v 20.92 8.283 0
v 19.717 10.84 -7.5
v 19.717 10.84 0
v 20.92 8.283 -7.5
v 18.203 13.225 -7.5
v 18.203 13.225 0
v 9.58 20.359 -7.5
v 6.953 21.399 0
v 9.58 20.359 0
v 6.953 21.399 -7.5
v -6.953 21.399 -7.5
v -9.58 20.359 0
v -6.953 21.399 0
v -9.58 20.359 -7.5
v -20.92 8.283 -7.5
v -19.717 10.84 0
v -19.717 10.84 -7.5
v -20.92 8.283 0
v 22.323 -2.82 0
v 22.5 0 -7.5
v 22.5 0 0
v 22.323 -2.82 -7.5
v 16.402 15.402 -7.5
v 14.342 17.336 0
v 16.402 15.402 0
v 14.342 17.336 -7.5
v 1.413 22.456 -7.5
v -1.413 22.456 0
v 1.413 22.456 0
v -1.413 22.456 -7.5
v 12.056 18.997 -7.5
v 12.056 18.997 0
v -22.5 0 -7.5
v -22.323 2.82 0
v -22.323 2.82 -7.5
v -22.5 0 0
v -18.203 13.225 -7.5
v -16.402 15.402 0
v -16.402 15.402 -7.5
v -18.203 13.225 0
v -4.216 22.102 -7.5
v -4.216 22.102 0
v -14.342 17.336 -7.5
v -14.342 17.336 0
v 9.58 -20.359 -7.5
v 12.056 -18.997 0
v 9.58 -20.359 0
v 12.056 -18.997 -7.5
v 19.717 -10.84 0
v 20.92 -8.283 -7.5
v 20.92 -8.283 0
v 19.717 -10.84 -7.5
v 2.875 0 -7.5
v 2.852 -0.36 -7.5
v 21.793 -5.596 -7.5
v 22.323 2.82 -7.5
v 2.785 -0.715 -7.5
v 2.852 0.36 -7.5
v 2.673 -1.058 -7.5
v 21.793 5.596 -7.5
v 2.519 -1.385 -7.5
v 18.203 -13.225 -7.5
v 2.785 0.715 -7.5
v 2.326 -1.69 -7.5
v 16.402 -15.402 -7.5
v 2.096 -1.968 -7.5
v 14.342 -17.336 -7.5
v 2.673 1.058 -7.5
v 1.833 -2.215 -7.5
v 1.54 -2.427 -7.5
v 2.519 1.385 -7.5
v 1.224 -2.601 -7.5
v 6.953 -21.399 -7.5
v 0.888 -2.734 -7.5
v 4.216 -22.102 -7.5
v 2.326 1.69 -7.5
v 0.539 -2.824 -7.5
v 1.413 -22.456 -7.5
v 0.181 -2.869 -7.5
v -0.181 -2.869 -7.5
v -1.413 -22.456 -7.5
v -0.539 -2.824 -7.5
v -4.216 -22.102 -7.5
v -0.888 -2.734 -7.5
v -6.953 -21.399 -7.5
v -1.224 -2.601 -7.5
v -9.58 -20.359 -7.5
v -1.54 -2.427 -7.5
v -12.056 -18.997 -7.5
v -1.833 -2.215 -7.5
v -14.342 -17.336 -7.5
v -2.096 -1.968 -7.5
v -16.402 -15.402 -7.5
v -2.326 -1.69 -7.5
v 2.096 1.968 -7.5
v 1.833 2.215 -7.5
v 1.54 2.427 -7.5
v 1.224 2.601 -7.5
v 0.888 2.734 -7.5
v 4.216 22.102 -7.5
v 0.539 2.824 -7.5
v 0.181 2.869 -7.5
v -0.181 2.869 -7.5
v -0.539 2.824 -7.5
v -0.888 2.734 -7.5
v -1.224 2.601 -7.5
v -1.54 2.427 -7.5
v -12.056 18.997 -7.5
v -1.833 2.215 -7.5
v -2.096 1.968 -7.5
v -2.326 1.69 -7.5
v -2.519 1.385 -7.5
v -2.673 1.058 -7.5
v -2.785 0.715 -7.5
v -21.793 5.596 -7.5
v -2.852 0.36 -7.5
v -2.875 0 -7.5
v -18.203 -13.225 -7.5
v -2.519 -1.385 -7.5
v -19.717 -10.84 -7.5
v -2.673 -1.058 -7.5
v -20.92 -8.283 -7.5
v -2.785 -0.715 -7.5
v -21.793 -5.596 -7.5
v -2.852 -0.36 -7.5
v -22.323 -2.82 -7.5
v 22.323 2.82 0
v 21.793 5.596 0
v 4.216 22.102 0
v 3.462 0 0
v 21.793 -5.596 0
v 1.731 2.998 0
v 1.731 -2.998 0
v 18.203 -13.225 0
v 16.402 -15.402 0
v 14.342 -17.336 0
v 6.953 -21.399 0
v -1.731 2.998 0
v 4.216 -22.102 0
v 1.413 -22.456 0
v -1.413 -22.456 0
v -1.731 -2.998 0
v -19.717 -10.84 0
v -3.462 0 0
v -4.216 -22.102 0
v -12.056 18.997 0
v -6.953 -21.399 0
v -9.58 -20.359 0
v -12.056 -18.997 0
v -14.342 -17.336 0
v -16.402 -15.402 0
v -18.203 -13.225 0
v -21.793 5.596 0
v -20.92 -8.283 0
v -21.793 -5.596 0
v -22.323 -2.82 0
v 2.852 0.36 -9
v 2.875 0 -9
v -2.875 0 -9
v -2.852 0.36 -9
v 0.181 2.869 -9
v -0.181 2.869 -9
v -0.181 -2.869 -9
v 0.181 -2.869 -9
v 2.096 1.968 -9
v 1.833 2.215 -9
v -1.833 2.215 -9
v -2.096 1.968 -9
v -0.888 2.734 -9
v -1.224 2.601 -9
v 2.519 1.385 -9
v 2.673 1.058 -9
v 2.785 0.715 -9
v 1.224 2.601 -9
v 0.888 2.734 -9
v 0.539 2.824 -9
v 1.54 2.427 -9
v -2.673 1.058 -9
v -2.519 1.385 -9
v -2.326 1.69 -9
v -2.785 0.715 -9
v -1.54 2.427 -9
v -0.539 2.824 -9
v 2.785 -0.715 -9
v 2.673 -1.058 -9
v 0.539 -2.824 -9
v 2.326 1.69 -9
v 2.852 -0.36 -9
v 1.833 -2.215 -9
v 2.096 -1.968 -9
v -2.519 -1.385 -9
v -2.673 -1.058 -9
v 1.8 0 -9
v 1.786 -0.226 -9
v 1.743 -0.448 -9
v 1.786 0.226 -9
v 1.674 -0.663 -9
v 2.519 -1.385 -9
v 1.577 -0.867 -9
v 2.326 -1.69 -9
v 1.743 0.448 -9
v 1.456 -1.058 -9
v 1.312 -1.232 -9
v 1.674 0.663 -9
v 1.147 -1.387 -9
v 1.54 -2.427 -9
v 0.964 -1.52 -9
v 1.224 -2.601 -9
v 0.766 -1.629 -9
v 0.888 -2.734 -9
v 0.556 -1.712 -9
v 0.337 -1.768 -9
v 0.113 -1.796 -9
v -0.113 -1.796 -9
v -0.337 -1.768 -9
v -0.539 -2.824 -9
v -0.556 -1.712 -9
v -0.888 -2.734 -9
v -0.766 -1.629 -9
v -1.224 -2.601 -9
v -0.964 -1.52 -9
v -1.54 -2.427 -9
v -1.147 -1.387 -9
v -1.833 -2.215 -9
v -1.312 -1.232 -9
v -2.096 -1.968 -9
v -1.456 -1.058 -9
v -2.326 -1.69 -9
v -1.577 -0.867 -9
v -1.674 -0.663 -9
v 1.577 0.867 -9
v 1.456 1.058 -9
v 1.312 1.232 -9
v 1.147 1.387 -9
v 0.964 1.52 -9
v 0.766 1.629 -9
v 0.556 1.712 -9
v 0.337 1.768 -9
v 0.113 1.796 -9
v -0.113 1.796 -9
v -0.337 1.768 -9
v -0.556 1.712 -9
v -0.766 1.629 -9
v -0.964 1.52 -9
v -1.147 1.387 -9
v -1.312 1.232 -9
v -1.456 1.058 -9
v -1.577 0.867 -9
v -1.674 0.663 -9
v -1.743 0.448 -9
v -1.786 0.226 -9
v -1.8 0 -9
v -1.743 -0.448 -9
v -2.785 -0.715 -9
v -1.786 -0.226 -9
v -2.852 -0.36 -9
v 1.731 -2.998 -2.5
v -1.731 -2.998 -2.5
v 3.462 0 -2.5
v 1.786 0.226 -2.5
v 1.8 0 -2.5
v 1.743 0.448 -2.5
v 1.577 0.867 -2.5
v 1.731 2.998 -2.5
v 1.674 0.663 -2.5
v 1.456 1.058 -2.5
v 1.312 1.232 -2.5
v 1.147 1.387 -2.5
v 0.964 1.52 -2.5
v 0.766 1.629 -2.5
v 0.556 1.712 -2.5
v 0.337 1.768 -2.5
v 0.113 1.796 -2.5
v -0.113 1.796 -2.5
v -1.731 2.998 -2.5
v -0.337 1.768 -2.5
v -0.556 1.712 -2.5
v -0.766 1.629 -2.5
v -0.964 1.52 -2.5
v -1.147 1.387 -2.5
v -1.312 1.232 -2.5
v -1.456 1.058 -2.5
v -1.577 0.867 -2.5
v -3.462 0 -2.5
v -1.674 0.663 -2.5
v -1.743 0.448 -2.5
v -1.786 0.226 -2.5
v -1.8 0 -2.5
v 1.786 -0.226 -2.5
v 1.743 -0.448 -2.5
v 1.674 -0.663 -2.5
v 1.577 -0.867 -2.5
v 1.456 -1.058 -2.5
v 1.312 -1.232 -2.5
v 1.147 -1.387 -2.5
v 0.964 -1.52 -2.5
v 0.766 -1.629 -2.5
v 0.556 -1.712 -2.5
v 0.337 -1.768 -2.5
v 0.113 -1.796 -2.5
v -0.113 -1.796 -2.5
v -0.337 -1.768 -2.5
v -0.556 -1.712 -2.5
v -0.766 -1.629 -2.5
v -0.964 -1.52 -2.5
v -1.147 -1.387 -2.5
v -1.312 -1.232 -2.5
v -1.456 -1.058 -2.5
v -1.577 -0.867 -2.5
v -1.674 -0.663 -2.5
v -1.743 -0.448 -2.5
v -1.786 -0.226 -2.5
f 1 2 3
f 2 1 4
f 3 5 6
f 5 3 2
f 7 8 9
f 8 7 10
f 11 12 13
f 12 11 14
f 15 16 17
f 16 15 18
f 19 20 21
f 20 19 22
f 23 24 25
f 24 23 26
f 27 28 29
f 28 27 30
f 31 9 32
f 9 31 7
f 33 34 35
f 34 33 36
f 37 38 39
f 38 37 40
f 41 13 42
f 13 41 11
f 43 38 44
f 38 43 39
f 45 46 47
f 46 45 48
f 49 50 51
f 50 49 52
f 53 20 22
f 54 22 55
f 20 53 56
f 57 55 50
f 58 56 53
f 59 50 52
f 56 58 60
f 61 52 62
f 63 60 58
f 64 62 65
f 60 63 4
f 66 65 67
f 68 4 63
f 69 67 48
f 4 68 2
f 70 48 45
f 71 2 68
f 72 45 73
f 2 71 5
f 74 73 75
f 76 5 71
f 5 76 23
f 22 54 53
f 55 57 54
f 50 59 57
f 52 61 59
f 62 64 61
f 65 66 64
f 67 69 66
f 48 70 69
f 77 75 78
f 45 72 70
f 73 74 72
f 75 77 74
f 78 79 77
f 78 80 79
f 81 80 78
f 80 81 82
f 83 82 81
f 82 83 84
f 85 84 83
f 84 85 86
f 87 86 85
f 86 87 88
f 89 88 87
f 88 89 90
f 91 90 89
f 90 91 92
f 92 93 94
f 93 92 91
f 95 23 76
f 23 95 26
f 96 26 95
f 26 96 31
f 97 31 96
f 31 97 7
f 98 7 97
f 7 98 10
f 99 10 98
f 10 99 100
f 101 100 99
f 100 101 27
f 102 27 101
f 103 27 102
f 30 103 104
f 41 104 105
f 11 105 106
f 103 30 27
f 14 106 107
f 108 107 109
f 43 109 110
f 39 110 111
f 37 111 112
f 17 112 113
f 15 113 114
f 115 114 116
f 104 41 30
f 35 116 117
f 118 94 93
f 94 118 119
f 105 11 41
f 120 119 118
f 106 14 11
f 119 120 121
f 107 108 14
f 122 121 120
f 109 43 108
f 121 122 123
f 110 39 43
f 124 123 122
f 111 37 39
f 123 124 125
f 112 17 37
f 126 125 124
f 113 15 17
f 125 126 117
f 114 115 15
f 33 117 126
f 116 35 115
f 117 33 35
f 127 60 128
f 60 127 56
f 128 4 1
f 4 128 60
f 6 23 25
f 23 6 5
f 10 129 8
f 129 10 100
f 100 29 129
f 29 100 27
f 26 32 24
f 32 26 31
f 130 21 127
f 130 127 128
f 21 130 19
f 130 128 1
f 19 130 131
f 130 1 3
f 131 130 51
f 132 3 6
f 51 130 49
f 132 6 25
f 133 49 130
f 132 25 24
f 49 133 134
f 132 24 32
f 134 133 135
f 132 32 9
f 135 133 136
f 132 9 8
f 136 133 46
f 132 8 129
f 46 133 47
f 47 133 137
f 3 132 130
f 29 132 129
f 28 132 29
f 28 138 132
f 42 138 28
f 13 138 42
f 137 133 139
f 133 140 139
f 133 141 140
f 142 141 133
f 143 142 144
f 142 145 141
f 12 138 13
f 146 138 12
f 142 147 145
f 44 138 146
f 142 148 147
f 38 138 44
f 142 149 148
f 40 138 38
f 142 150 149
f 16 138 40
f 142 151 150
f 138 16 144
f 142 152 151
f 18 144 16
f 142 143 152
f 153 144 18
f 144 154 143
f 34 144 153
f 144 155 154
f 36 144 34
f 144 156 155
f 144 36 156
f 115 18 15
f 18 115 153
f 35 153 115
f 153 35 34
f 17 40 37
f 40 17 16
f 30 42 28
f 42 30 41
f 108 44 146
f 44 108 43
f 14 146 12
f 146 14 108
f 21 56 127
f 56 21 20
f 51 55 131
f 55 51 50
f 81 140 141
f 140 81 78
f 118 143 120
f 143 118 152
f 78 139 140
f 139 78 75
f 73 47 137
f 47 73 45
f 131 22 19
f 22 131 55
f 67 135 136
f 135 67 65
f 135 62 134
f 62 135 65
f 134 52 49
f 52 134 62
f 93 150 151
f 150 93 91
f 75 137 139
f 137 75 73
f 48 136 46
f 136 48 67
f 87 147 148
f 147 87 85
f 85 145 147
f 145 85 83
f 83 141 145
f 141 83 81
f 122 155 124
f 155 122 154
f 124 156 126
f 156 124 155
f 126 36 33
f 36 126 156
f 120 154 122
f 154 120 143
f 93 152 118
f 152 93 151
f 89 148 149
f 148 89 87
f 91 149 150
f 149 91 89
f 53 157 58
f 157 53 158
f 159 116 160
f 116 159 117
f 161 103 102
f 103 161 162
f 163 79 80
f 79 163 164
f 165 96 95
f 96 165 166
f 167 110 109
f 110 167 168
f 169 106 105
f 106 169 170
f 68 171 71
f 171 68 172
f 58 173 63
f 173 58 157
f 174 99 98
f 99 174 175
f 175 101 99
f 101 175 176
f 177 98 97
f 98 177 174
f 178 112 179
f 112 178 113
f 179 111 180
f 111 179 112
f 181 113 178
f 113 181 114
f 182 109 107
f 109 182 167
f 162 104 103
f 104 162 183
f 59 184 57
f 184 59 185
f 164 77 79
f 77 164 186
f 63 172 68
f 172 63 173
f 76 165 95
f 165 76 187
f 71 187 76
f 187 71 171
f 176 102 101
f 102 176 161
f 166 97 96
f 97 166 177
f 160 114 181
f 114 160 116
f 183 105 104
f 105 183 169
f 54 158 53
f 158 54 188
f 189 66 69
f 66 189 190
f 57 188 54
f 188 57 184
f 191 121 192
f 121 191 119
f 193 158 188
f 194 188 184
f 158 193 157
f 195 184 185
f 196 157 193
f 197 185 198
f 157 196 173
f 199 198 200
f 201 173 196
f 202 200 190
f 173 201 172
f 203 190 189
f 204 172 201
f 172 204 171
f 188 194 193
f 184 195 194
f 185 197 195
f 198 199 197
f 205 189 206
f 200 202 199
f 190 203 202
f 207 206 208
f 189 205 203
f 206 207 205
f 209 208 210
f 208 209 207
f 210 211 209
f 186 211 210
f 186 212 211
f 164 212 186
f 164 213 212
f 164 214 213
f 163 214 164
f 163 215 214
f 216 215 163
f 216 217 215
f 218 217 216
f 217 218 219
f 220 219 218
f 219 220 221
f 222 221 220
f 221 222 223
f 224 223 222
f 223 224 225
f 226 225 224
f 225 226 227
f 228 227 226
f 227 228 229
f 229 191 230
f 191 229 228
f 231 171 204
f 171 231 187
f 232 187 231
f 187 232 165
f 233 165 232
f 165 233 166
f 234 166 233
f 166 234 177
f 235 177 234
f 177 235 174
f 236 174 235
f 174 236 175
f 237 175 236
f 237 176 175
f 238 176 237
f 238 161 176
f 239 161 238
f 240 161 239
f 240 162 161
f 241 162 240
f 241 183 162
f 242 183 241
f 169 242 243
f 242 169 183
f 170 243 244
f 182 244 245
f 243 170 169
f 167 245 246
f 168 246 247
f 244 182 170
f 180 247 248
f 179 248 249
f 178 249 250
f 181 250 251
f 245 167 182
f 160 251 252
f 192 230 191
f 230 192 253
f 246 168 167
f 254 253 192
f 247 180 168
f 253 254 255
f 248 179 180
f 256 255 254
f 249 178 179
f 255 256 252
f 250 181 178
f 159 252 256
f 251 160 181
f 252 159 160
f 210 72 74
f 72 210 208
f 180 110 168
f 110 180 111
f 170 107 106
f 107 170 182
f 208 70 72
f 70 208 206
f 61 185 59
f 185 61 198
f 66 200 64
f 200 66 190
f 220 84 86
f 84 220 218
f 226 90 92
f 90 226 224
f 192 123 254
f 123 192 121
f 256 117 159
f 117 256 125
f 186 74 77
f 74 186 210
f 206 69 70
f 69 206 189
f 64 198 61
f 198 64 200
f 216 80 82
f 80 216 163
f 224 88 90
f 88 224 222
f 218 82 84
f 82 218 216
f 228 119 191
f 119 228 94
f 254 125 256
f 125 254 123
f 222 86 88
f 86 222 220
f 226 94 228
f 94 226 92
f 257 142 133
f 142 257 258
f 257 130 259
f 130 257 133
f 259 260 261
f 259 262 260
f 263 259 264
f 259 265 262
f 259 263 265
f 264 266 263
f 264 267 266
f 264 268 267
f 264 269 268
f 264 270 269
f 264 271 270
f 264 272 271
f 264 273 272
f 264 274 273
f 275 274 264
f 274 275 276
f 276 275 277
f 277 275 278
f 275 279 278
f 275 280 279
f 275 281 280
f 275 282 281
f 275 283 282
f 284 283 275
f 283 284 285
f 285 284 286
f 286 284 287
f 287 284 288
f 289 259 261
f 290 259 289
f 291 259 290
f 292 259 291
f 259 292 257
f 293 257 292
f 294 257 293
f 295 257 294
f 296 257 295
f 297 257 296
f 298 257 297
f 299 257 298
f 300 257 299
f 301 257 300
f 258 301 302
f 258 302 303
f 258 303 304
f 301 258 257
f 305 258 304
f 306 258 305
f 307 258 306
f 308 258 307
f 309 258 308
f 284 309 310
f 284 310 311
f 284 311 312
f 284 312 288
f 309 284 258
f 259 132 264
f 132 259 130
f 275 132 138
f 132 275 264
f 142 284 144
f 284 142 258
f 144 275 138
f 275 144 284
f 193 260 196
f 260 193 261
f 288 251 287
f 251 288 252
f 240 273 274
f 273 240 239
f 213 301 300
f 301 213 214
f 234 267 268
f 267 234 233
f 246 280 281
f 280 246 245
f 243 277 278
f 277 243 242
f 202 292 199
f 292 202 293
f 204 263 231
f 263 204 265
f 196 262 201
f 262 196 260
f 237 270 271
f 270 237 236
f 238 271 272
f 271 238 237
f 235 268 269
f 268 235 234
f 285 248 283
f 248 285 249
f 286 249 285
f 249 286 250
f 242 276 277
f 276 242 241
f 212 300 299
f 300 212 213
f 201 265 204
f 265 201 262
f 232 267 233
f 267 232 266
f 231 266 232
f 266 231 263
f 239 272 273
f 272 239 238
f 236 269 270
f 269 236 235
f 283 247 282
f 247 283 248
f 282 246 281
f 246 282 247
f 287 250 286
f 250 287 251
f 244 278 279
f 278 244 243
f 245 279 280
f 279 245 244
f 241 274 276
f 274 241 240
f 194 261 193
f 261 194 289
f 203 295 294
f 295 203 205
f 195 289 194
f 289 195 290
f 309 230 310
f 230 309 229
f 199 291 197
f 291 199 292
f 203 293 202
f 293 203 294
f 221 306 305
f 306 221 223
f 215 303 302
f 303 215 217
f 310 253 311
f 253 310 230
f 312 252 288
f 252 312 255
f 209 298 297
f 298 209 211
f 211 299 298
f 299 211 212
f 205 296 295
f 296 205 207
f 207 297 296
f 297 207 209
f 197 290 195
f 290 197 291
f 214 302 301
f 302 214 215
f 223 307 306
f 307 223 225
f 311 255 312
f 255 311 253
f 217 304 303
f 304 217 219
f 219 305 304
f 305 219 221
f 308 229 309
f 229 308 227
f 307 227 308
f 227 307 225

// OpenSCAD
$fn = 50;


difference() {
	union() {
		translate(v = [0, 0, -7.5000000000]) {
			cylinder(h = 7.5000000000, r = 22.5000000000);
		}
		#translate(v = [0, 0, -9.0000000000]) {
			cylinder(h = 9, r = 2.8750000000);
		}
	}
	union() {
		translate(v = [0, 0, 0]) {
			rotate(a = [0, 0, 0]) {
				difference() {
					union() {
						translate(v = [0, 0, -2.5000000000]) {
							linear_extrude(height = 2.5000000000) {
								polygon(points = [[3.4620000000, 0.0000000000], [1.7310000000, 2.9981799479], [-1.7310000000, 2.9981799479], [-3.4620000000, 0.0000000000], [-1.7310000000, -2.9981799479], [1.7310000000, -2.9981799479]]);
							}
						}
					}
					union();
				}
			}
		}
		#translate(v = [0, 0, -100.0000000000]) {
			cylinder(h = 200, r = 1.8000000000);
		}
	}
}
